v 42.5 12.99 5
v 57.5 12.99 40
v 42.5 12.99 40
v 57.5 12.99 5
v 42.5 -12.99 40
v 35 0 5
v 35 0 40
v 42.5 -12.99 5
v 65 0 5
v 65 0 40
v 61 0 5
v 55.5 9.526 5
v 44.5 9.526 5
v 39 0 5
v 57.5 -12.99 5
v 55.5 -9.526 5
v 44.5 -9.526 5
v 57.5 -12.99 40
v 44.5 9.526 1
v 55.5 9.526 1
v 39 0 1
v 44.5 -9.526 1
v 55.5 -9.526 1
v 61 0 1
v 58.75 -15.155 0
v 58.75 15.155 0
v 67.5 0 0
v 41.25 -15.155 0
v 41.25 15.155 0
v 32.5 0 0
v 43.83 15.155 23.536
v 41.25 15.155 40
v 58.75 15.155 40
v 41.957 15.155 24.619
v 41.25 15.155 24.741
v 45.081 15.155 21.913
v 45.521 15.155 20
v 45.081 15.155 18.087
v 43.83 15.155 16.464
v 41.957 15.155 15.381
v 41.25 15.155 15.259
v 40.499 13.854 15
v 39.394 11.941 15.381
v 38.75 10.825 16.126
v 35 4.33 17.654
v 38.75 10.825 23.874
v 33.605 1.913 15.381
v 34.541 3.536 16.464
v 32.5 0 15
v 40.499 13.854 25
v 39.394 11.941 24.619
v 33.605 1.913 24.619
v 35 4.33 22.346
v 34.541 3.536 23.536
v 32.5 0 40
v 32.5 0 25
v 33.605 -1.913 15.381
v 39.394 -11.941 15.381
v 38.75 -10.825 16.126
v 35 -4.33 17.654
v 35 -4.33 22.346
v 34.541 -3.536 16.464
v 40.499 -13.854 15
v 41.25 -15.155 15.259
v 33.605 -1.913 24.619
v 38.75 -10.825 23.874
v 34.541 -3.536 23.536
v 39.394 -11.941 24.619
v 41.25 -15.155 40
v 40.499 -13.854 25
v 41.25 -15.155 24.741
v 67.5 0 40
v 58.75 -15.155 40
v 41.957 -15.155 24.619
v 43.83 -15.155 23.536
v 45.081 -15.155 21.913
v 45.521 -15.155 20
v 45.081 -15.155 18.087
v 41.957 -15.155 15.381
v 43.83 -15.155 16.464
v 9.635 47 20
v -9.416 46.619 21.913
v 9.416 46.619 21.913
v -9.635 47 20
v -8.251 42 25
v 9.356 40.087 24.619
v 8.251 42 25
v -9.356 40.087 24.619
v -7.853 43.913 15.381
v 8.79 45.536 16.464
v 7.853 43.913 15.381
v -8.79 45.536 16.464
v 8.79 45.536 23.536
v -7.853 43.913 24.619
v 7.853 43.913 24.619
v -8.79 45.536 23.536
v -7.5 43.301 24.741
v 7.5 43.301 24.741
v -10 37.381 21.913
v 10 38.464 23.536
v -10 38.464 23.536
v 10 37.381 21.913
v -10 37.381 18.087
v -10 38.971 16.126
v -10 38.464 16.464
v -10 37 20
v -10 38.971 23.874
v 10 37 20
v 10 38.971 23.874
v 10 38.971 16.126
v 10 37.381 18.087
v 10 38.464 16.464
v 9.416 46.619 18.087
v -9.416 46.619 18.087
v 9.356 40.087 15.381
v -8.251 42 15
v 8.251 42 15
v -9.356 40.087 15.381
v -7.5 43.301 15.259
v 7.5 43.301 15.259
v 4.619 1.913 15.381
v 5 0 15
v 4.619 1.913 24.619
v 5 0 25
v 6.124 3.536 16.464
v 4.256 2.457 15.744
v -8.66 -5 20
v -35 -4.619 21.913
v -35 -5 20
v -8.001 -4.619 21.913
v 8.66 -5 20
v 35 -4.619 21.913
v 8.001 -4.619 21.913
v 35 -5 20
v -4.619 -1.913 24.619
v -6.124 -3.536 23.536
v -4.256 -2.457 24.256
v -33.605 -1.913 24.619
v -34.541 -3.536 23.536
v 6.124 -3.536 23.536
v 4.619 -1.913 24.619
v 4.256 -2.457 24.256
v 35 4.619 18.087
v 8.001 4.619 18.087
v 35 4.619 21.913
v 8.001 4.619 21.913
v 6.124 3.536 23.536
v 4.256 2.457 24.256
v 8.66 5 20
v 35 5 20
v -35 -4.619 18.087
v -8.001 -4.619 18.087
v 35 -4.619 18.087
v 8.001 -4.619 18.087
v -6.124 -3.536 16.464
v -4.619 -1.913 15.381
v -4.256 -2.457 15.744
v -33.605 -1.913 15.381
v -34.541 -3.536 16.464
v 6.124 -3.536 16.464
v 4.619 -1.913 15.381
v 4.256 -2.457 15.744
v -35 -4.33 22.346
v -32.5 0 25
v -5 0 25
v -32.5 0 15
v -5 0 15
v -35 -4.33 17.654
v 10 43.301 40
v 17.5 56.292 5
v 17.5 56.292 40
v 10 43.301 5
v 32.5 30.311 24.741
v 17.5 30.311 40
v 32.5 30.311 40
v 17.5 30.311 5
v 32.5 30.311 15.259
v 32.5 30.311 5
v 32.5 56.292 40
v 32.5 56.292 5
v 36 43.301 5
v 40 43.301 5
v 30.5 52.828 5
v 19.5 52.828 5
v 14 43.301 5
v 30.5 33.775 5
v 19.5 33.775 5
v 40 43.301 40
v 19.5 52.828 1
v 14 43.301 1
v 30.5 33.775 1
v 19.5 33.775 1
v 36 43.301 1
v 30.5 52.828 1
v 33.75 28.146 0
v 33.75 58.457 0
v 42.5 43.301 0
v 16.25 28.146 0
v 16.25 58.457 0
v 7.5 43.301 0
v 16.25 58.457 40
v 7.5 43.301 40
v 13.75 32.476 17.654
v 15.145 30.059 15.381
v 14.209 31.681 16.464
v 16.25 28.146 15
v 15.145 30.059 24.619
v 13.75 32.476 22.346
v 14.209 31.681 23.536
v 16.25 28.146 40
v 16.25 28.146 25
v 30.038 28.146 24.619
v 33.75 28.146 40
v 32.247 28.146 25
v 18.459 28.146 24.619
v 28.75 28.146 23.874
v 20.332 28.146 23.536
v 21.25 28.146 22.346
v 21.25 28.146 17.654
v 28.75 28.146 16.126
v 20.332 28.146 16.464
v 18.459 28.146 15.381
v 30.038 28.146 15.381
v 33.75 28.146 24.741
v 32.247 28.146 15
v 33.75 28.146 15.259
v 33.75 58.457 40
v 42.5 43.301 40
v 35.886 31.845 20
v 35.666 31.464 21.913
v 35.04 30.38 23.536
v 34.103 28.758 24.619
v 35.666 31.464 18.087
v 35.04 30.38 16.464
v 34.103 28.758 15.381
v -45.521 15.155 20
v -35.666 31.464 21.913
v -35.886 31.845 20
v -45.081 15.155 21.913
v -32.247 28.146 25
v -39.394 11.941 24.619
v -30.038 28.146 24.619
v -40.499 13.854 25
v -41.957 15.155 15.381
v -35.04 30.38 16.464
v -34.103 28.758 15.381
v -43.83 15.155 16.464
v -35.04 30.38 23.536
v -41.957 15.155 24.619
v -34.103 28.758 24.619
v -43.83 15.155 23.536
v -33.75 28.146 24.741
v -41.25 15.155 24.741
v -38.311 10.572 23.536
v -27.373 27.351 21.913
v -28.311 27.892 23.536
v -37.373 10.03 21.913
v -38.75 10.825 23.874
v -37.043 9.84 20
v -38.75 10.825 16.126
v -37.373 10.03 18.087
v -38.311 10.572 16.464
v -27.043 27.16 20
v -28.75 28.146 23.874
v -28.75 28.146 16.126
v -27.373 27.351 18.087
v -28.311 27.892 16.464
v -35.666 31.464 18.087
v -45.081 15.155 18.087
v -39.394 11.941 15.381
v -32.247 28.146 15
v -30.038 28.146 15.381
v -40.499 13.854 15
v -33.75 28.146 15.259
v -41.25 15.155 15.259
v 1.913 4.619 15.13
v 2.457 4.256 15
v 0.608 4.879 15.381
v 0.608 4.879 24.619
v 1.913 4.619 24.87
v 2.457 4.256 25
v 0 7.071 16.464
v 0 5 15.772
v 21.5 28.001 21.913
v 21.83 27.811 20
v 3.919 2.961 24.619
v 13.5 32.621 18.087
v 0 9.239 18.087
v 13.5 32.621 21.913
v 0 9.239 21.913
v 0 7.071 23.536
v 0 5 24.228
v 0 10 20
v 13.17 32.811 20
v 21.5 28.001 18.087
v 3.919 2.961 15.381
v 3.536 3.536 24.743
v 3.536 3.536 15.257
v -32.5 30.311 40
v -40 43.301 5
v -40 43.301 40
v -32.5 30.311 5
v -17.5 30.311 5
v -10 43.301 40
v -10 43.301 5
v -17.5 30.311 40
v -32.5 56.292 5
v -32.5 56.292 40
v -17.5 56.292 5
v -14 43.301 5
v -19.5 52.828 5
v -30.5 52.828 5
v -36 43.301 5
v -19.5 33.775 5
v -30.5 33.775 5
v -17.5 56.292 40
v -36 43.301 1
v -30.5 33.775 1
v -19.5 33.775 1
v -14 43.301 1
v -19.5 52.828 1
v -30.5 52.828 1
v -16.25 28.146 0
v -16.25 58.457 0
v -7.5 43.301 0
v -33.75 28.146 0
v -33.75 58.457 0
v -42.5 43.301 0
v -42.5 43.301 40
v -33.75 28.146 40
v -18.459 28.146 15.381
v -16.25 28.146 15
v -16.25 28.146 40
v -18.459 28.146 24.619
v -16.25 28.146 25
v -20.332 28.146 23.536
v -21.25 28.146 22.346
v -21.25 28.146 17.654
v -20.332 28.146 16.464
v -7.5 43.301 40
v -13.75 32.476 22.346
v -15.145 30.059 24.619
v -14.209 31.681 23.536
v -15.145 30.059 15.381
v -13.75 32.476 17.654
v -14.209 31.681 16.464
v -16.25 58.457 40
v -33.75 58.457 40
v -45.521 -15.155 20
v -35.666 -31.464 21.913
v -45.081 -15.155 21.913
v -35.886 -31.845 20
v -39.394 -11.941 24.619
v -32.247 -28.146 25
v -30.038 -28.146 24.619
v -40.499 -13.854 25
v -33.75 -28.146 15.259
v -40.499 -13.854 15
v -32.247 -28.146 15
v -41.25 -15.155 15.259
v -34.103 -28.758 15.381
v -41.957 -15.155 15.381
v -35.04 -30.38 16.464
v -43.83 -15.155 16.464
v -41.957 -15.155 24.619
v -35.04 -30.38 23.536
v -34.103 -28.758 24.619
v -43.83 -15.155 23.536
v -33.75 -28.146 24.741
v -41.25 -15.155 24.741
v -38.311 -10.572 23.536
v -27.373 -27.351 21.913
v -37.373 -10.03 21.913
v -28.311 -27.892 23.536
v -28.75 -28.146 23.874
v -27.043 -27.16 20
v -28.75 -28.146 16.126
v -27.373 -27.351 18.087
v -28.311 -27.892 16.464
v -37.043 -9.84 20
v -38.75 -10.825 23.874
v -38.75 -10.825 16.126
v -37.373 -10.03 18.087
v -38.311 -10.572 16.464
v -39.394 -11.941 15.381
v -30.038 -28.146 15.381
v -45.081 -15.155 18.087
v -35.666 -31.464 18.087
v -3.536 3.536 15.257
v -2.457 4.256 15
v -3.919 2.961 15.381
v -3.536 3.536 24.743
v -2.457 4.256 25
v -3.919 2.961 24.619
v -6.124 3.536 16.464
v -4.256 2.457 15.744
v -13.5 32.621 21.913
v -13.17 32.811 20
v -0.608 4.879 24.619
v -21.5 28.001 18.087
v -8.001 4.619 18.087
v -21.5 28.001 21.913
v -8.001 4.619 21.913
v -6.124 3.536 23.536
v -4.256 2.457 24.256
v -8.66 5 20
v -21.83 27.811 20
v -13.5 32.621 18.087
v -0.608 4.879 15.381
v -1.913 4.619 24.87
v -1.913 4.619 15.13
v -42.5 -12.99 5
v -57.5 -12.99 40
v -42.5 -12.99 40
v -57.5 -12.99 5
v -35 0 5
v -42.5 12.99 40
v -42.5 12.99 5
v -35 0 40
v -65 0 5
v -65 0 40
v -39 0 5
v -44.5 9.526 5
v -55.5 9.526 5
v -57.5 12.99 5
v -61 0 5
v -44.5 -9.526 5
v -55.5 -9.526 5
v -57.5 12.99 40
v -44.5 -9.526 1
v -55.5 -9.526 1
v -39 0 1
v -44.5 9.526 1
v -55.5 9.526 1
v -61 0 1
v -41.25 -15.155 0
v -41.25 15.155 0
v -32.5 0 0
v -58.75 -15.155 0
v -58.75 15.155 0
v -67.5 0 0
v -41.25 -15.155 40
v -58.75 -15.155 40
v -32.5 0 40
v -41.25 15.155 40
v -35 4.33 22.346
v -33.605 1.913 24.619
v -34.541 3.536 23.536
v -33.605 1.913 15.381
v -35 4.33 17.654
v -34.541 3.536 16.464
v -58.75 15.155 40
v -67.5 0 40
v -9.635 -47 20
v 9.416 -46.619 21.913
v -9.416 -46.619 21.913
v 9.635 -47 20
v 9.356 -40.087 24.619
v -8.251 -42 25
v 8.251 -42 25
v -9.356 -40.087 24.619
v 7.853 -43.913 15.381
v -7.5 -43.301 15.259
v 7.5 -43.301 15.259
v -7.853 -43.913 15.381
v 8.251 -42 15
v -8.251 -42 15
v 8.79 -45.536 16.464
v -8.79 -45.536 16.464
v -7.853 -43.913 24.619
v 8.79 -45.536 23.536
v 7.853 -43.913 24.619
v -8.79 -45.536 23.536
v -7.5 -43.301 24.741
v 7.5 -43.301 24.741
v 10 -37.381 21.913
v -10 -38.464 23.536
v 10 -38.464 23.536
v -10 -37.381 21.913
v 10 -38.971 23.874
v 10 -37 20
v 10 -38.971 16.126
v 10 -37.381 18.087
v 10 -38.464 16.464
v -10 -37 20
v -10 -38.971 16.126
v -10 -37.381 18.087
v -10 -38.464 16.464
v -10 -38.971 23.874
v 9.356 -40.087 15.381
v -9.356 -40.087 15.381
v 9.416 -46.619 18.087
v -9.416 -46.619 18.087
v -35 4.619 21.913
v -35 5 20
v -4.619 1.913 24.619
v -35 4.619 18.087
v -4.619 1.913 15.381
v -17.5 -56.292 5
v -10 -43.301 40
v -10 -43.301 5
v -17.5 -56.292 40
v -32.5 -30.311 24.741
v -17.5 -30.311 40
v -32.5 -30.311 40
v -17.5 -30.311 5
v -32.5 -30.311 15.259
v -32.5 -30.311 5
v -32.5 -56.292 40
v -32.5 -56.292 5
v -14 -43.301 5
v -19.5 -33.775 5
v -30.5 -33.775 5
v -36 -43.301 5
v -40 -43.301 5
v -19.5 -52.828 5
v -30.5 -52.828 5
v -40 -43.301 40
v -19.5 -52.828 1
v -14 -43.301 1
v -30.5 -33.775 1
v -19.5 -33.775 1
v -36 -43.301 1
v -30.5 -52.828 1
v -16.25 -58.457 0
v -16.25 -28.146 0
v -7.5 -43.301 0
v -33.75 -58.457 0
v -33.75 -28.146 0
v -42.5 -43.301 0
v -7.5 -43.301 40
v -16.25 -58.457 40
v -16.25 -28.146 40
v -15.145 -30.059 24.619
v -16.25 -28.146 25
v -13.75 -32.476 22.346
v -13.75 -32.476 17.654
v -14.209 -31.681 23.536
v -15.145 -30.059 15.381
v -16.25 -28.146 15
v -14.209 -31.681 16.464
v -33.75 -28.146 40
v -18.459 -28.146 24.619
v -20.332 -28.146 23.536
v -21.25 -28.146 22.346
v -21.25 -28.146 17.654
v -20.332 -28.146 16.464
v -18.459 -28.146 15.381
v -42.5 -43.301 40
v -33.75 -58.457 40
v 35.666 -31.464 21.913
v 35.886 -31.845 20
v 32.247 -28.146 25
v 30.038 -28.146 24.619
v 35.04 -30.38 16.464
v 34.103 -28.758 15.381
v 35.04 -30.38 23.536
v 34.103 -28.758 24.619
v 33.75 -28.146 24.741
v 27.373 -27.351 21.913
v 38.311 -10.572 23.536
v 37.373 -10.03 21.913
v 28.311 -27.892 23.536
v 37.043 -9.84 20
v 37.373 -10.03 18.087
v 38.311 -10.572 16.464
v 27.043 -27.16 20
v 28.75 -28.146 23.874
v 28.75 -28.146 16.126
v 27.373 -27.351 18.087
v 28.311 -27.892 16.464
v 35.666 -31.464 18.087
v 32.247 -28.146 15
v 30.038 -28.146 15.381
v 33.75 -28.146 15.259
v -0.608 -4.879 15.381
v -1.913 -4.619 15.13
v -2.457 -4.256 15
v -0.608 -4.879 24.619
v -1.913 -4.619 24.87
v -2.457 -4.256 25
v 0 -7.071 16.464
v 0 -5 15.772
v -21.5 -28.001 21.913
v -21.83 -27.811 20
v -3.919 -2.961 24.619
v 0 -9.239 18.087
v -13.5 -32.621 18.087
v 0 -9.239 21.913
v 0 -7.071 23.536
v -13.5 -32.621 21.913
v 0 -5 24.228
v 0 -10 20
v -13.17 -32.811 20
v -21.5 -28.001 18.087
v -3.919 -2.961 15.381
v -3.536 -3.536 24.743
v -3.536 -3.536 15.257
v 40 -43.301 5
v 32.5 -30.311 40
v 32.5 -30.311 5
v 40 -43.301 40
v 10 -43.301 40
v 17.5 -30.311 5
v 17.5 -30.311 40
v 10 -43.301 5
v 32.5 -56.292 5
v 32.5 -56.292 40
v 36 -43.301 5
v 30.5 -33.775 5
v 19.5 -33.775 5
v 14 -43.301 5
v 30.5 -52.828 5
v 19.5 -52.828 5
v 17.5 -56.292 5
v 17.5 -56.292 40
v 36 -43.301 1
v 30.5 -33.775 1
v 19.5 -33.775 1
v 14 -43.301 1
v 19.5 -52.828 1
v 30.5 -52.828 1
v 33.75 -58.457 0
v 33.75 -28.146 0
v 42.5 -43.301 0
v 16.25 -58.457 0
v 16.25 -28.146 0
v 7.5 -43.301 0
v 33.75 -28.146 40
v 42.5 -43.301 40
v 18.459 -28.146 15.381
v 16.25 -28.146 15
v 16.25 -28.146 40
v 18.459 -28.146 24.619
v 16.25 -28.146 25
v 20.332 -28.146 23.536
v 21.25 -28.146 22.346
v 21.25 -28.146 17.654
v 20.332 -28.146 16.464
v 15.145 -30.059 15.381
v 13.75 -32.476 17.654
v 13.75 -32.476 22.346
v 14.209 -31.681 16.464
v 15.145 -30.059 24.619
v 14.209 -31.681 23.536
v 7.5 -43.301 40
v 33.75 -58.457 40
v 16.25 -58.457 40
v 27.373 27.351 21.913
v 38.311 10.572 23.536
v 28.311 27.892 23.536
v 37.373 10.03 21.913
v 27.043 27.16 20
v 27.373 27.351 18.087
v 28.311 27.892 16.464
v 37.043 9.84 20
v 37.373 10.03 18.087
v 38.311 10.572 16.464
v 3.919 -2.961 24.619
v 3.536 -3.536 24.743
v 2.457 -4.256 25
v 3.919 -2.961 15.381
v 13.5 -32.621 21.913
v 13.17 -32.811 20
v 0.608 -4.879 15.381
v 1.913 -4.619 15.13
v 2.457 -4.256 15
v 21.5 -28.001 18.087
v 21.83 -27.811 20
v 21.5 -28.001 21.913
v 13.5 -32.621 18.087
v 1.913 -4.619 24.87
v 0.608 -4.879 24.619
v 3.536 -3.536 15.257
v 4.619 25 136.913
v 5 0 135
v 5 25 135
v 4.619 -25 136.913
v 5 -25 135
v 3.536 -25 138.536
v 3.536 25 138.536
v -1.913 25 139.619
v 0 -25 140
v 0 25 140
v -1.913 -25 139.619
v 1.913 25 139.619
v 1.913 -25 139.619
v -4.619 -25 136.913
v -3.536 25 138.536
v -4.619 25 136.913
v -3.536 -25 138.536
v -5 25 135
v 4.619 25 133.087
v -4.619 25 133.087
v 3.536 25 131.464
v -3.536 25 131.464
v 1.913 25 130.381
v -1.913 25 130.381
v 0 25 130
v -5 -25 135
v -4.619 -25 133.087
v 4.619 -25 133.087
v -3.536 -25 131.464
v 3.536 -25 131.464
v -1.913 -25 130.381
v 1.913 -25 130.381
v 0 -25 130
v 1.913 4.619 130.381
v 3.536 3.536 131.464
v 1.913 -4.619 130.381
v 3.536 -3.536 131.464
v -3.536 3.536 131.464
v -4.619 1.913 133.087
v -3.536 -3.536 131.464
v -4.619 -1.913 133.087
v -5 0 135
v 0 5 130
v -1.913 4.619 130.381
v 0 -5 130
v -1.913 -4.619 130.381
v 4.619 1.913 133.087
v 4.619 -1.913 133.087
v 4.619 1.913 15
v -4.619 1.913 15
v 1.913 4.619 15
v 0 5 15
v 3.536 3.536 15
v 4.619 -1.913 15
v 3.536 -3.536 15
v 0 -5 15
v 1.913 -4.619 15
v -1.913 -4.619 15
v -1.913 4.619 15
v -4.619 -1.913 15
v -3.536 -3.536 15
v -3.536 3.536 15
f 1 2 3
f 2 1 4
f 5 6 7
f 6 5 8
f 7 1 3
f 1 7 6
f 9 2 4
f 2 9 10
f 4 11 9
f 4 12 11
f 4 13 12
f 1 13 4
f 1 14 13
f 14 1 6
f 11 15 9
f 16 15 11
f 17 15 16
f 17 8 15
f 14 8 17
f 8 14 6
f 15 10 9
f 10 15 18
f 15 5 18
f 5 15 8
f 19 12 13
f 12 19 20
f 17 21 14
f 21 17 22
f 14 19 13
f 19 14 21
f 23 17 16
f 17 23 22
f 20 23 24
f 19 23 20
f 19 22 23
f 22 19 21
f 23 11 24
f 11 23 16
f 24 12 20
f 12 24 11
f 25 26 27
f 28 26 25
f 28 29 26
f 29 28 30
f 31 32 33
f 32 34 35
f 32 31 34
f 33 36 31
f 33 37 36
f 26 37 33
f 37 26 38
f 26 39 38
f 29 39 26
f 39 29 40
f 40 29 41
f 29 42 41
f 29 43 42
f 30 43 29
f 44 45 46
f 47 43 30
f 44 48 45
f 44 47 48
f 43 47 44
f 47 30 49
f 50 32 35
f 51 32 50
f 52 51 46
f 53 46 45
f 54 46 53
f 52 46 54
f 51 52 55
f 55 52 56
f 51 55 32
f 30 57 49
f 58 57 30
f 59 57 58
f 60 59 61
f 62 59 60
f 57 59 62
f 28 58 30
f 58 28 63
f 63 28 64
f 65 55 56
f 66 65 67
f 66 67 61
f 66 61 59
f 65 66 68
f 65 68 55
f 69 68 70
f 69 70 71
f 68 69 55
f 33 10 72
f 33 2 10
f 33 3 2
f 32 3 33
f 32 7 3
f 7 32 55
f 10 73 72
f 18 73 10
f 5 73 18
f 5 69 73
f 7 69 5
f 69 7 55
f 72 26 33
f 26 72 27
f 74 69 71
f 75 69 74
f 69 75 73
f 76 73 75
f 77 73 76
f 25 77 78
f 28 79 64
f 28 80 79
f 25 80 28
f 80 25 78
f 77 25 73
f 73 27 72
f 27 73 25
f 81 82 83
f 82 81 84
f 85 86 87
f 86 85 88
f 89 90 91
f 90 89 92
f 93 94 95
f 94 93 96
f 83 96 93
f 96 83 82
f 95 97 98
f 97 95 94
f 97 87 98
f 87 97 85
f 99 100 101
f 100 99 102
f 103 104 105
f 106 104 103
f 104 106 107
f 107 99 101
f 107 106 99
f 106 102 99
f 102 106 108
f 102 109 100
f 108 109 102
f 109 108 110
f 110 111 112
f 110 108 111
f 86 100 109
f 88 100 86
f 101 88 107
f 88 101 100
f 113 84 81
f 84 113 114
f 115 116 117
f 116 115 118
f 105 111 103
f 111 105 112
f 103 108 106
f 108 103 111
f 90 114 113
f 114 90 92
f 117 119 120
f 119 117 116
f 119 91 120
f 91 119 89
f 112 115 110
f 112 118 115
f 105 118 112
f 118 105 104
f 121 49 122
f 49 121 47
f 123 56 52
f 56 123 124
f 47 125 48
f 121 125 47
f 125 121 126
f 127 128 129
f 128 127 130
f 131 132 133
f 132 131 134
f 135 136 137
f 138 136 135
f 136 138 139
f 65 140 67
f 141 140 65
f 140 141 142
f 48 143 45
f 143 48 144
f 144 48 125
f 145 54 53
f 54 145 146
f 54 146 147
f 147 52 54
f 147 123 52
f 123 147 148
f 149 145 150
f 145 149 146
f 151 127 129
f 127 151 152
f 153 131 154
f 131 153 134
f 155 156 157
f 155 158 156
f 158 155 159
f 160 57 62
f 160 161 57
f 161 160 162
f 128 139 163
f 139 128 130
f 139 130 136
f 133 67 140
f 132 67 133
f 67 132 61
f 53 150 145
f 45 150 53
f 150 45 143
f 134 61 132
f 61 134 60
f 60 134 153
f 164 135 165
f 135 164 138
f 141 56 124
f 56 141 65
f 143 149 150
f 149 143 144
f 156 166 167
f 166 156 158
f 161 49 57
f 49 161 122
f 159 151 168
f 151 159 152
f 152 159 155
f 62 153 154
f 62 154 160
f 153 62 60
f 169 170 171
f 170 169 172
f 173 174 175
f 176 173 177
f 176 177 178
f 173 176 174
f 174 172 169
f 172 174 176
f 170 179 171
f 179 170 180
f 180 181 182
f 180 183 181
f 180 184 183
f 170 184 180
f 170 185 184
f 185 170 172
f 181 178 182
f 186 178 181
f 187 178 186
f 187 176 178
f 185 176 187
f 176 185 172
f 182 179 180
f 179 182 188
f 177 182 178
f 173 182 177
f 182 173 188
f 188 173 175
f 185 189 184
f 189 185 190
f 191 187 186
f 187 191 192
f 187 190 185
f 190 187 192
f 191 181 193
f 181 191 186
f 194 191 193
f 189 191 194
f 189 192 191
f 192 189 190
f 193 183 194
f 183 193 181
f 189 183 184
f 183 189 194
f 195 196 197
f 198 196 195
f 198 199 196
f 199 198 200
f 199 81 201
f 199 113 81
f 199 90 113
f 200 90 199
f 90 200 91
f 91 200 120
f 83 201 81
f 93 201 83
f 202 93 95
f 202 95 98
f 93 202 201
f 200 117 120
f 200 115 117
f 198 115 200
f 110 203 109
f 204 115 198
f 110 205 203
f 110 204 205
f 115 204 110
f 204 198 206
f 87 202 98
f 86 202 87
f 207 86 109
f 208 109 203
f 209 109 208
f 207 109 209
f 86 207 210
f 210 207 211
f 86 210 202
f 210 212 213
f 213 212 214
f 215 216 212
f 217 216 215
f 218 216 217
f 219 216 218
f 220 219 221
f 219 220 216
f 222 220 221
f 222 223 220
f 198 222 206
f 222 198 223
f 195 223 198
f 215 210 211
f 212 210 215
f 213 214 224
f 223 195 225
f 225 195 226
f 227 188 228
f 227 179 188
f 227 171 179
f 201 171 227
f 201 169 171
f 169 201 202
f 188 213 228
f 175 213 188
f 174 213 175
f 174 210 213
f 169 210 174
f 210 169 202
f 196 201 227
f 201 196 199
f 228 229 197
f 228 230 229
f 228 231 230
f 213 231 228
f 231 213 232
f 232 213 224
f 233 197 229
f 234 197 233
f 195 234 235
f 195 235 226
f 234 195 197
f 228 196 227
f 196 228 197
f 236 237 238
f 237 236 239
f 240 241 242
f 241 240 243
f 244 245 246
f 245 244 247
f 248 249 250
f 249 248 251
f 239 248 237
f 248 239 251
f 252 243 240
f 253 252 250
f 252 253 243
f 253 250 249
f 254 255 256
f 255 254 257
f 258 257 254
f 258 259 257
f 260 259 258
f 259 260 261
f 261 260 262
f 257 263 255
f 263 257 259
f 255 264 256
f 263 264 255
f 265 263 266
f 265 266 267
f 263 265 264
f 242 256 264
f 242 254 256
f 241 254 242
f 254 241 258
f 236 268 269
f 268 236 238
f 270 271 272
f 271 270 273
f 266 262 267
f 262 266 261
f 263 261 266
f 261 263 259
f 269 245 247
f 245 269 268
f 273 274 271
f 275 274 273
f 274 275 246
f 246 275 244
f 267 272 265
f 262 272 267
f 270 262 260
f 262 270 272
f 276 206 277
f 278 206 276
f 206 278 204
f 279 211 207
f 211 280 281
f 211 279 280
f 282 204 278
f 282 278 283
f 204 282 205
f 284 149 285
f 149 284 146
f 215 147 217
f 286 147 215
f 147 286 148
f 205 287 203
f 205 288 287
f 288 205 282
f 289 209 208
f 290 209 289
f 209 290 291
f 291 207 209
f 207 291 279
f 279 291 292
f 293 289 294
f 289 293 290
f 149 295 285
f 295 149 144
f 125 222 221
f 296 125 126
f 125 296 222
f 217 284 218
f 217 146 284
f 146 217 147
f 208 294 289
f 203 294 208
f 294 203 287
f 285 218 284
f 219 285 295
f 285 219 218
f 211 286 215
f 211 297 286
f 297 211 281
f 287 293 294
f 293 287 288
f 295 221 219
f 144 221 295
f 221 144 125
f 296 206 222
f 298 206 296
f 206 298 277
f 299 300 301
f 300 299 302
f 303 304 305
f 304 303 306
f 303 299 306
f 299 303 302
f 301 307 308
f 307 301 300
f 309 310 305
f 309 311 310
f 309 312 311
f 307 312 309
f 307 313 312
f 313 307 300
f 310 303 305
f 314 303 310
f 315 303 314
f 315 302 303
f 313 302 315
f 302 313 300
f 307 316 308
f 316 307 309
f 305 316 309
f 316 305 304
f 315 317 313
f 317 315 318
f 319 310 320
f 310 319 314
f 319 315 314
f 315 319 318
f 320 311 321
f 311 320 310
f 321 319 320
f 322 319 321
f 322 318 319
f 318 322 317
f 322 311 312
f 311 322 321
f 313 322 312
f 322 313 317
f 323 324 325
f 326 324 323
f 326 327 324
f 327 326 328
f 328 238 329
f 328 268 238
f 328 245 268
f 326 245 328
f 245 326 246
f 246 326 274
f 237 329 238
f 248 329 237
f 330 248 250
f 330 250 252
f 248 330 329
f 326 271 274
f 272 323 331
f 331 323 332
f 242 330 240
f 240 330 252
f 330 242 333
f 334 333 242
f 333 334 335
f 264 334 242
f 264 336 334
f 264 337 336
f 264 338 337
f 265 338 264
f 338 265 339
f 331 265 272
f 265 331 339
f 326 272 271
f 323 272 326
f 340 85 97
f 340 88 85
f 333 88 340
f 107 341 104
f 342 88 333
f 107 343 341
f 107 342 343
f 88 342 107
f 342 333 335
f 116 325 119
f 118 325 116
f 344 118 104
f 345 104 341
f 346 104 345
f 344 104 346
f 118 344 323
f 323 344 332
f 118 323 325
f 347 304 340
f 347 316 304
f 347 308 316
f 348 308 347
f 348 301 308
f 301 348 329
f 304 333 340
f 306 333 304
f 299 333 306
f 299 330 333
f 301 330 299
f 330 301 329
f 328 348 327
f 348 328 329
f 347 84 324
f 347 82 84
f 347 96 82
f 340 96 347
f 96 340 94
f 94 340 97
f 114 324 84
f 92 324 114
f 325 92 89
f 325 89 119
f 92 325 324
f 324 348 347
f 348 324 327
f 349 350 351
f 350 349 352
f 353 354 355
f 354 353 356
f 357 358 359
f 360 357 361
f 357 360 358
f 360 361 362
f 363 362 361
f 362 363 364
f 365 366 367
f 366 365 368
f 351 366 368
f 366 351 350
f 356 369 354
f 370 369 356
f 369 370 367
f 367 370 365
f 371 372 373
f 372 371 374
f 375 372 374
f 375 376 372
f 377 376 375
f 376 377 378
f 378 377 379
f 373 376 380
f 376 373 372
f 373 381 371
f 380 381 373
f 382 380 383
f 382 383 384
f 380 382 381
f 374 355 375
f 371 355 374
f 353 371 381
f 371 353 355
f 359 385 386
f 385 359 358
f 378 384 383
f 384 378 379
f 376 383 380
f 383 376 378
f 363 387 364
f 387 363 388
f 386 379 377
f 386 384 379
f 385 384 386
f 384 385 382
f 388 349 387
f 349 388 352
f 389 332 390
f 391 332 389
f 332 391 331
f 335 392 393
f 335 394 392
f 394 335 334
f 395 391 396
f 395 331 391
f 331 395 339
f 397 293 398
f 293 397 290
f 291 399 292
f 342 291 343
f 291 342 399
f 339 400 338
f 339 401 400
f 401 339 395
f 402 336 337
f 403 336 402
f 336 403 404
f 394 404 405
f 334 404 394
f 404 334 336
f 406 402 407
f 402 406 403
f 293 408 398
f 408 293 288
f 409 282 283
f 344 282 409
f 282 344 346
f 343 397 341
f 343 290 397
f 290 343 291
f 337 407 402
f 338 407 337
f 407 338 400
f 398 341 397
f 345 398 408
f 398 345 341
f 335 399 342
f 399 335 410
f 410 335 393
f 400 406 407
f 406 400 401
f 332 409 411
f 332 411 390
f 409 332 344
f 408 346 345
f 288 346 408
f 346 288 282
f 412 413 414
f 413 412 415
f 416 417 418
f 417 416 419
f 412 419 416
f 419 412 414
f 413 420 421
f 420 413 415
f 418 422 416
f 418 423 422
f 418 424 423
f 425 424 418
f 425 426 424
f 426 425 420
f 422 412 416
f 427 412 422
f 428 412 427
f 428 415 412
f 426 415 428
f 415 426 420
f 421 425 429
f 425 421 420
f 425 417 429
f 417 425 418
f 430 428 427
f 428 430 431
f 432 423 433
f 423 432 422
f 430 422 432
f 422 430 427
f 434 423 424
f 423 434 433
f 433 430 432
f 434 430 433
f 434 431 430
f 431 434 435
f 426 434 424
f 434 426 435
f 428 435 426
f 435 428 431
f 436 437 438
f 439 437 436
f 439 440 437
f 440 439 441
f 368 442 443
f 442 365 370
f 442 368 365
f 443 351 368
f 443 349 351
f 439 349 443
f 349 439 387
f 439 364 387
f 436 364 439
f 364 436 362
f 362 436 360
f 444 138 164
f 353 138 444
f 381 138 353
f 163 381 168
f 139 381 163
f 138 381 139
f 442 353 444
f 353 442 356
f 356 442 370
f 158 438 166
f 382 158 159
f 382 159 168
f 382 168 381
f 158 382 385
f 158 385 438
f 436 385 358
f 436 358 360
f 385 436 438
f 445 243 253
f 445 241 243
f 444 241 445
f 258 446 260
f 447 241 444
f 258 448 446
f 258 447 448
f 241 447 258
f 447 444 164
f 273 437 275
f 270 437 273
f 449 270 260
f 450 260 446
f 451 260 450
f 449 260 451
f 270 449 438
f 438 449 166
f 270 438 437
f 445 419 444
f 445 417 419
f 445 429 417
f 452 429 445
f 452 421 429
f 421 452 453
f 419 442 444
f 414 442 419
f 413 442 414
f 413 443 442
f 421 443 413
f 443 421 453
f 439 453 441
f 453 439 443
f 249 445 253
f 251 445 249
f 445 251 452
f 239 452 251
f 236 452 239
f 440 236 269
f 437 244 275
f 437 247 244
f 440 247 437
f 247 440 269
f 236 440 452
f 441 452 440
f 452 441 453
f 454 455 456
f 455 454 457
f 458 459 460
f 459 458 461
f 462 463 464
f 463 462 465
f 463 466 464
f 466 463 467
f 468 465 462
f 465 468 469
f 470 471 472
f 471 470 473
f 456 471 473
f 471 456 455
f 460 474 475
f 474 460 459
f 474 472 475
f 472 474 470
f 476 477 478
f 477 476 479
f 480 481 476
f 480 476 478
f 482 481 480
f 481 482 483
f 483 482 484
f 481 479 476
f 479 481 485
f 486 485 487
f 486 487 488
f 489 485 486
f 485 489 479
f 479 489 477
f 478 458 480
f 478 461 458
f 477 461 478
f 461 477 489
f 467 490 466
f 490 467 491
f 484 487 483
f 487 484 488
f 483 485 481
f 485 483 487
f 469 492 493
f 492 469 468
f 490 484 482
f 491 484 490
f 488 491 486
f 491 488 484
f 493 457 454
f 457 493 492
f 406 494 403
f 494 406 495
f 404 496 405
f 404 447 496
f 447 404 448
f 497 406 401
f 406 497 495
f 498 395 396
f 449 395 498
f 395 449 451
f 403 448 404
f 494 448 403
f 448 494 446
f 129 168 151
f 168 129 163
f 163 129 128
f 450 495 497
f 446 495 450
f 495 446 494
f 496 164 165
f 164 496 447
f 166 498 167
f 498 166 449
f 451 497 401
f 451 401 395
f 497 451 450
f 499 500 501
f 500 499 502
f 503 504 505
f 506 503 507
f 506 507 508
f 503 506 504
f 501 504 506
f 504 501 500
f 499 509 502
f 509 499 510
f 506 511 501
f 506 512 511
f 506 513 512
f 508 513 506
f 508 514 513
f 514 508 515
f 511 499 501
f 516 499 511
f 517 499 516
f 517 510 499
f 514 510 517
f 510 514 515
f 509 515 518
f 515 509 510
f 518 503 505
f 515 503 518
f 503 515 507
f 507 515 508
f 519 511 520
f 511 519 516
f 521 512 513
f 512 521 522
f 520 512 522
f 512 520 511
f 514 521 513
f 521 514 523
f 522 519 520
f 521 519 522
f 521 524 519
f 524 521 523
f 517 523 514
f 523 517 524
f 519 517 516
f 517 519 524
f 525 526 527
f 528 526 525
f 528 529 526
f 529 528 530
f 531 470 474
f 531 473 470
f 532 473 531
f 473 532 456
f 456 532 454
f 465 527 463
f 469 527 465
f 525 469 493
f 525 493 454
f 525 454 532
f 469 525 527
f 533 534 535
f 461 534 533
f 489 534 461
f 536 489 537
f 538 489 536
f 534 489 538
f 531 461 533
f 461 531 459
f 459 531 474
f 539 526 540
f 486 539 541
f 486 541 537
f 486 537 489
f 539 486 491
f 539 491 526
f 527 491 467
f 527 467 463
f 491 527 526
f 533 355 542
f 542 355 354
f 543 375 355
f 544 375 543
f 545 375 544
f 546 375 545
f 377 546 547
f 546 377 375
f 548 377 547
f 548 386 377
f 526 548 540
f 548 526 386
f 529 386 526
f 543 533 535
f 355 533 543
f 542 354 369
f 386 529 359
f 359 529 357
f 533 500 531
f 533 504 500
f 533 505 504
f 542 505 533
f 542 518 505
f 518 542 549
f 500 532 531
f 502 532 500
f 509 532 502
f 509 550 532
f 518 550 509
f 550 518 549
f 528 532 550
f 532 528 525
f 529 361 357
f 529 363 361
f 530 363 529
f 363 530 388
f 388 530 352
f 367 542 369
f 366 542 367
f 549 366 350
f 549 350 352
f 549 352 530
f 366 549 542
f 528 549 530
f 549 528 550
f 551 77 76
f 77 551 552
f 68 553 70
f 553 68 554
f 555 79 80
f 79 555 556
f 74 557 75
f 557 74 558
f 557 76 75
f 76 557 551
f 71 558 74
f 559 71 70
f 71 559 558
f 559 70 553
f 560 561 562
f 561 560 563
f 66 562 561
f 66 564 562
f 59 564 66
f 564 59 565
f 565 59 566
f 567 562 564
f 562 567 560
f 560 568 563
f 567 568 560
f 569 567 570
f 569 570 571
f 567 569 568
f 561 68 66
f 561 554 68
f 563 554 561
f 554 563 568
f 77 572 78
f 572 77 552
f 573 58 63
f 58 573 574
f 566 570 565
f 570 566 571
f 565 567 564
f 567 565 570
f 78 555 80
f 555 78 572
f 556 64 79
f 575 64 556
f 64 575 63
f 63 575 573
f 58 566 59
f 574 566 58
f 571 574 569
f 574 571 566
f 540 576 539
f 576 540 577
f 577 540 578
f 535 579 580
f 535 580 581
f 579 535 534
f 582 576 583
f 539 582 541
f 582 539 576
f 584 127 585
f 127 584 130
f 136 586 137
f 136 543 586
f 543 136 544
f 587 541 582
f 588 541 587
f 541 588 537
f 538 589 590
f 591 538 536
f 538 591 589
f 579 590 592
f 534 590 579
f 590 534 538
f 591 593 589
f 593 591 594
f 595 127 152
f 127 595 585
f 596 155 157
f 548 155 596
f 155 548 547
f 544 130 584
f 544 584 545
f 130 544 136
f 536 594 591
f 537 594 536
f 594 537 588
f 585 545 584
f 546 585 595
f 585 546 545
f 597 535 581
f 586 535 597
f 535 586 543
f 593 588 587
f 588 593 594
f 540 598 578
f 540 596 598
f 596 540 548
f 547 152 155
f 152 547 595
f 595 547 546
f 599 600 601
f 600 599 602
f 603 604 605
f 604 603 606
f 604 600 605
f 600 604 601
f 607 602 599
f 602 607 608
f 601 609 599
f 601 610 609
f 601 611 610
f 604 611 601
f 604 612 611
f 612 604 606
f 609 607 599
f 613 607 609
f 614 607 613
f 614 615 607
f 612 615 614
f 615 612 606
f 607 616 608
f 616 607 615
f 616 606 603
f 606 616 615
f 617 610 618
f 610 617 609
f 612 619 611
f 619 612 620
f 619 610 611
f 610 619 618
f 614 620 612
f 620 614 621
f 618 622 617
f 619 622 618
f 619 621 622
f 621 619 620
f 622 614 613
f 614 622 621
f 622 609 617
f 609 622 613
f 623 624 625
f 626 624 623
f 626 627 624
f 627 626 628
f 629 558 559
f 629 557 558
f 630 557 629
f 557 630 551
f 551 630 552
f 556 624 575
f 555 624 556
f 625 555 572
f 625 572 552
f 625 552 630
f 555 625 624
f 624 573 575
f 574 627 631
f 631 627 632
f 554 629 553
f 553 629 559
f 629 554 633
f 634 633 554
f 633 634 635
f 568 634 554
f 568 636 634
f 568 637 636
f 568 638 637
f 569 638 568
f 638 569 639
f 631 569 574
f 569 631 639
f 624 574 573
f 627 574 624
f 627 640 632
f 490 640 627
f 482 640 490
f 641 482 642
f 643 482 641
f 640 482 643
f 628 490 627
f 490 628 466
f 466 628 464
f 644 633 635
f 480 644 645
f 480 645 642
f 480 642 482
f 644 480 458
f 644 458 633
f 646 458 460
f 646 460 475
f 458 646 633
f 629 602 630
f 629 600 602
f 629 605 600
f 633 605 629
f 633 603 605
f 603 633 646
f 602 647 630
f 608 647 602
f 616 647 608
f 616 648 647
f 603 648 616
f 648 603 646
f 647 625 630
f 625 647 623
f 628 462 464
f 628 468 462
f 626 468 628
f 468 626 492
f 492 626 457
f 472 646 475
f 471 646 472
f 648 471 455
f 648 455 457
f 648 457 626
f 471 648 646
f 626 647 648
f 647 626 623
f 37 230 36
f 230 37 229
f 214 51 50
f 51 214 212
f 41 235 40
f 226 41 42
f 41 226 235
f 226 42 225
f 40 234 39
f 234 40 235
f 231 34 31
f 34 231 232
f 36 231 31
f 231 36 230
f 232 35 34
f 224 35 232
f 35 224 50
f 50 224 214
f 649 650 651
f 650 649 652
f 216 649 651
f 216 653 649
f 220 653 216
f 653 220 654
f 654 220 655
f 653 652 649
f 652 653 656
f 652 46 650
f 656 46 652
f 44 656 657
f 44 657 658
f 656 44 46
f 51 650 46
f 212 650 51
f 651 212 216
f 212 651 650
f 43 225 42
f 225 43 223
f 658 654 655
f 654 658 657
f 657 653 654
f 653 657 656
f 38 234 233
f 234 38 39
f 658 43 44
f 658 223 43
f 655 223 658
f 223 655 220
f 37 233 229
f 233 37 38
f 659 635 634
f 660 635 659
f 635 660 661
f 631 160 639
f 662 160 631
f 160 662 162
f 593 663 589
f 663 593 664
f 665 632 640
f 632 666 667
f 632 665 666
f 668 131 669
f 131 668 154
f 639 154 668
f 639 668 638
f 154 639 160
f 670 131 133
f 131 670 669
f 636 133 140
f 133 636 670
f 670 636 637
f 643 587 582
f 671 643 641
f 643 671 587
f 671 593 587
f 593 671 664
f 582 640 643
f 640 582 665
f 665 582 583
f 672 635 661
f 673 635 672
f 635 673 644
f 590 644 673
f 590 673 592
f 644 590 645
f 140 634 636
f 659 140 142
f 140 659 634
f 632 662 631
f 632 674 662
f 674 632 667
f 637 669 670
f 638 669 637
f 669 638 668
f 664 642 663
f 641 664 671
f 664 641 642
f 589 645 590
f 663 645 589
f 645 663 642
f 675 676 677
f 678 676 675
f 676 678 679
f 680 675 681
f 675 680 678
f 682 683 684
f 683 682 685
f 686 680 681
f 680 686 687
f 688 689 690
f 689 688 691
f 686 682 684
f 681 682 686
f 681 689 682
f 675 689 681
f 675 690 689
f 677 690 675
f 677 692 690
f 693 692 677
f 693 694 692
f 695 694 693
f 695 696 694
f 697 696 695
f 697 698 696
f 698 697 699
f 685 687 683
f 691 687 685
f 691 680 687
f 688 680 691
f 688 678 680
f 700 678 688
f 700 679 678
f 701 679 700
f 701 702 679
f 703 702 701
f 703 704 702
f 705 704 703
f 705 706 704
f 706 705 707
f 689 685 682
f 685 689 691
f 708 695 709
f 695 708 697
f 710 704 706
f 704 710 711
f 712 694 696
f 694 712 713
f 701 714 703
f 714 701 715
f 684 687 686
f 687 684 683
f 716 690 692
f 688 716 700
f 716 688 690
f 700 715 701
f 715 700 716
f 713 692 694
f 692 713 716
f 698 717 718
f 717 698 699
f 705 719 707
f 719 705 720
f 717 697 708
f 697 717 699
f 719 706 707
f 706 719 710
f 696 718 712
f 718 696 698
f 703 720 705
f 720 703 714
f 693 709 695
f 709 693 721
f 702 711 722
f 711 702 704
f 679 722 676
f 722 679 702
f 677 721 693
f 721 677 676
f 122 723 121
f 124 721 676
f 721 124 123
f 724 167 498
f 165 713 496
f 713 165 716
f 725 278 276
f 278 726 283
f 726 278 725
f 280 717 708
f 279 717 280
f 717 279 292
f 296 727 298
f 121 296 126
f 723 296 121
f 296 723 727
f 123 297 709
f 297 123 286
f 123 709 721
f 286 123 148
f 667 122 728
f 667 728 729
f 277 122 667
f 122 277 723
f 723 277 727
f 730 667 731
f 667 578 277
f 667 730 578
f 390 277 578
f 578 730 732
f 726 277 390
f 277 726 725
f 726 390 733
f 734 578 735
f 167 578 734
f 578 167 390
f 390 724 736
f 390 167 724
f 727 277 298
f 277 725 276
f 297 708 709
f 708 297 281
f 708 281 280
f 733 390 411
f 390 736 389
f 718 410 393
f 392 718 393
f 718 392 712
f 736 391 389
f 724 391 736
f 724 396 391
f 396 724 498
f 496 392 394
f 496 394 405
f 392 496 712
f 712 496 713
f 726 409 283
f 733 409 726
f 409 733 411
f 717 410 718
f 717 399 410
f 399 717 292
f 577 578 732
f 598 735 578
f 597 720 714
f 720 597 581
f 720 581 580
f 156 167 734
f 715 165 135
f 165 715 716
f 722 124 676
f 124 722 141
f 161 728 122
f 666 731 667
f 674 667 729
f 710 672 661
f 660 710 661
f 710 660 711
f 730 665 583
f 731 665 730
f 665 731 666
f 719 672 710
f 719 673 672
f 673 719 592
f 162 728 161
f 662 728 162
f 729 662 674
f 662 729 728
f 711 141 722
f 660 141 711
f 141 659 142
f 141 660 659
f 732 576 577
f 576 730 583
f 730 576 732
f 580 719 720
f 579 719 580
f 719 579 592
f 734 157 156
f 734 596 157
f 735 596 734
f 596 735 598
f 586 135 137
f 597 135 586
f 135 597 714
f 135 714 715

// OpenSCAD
// units are in cm
LENGTH_MULTI = 1.0;

// handle
translate([0,0,135])
rotate([90]) {
    HORI_HANDLE_WIDTH = 50;
    // bottom handle
    cylinder(HORI_HANDLE_WIDTH, 5, 5
    , center=true);
}

// middle rod
translate([0,0,15])
cylinder(120, 5,5);

for (i=[0: 60: 300])
rotate(i) {
    // supports
    rotate([90,0,90])
    translate([42 * LENGTH_MULTI,20,0])
        cylinder(h=20* LENGTH_MULTI, r=5,center=true);
    
    // struts
    rotate([90,90,90])
    translate([-20,0,0])
        cylinder(h=35* LENGTH_MULTI, r=5);
    // holders
    translate([50* LENGTH_MULTI,0,0])
    difference() {
        HEX_ROT = 60;
        rotate(HEX_ROT) cylinder($fn = 6, h=40, r=17.5* LENGTH_MULTI);
        translate([0,0,5])
        rotate(HEX_ROT) {
            cylinder($fn = 6, h=50, r=15* LENGTH_MULTI);
            cylinder($fn = 6, h=52, r=13* LENGTH_MULTI);
            translate([0,0,-4]) cylinder($fn = 6, h=52, r=11* LENGTH_MULTI);
        }
    }
}
